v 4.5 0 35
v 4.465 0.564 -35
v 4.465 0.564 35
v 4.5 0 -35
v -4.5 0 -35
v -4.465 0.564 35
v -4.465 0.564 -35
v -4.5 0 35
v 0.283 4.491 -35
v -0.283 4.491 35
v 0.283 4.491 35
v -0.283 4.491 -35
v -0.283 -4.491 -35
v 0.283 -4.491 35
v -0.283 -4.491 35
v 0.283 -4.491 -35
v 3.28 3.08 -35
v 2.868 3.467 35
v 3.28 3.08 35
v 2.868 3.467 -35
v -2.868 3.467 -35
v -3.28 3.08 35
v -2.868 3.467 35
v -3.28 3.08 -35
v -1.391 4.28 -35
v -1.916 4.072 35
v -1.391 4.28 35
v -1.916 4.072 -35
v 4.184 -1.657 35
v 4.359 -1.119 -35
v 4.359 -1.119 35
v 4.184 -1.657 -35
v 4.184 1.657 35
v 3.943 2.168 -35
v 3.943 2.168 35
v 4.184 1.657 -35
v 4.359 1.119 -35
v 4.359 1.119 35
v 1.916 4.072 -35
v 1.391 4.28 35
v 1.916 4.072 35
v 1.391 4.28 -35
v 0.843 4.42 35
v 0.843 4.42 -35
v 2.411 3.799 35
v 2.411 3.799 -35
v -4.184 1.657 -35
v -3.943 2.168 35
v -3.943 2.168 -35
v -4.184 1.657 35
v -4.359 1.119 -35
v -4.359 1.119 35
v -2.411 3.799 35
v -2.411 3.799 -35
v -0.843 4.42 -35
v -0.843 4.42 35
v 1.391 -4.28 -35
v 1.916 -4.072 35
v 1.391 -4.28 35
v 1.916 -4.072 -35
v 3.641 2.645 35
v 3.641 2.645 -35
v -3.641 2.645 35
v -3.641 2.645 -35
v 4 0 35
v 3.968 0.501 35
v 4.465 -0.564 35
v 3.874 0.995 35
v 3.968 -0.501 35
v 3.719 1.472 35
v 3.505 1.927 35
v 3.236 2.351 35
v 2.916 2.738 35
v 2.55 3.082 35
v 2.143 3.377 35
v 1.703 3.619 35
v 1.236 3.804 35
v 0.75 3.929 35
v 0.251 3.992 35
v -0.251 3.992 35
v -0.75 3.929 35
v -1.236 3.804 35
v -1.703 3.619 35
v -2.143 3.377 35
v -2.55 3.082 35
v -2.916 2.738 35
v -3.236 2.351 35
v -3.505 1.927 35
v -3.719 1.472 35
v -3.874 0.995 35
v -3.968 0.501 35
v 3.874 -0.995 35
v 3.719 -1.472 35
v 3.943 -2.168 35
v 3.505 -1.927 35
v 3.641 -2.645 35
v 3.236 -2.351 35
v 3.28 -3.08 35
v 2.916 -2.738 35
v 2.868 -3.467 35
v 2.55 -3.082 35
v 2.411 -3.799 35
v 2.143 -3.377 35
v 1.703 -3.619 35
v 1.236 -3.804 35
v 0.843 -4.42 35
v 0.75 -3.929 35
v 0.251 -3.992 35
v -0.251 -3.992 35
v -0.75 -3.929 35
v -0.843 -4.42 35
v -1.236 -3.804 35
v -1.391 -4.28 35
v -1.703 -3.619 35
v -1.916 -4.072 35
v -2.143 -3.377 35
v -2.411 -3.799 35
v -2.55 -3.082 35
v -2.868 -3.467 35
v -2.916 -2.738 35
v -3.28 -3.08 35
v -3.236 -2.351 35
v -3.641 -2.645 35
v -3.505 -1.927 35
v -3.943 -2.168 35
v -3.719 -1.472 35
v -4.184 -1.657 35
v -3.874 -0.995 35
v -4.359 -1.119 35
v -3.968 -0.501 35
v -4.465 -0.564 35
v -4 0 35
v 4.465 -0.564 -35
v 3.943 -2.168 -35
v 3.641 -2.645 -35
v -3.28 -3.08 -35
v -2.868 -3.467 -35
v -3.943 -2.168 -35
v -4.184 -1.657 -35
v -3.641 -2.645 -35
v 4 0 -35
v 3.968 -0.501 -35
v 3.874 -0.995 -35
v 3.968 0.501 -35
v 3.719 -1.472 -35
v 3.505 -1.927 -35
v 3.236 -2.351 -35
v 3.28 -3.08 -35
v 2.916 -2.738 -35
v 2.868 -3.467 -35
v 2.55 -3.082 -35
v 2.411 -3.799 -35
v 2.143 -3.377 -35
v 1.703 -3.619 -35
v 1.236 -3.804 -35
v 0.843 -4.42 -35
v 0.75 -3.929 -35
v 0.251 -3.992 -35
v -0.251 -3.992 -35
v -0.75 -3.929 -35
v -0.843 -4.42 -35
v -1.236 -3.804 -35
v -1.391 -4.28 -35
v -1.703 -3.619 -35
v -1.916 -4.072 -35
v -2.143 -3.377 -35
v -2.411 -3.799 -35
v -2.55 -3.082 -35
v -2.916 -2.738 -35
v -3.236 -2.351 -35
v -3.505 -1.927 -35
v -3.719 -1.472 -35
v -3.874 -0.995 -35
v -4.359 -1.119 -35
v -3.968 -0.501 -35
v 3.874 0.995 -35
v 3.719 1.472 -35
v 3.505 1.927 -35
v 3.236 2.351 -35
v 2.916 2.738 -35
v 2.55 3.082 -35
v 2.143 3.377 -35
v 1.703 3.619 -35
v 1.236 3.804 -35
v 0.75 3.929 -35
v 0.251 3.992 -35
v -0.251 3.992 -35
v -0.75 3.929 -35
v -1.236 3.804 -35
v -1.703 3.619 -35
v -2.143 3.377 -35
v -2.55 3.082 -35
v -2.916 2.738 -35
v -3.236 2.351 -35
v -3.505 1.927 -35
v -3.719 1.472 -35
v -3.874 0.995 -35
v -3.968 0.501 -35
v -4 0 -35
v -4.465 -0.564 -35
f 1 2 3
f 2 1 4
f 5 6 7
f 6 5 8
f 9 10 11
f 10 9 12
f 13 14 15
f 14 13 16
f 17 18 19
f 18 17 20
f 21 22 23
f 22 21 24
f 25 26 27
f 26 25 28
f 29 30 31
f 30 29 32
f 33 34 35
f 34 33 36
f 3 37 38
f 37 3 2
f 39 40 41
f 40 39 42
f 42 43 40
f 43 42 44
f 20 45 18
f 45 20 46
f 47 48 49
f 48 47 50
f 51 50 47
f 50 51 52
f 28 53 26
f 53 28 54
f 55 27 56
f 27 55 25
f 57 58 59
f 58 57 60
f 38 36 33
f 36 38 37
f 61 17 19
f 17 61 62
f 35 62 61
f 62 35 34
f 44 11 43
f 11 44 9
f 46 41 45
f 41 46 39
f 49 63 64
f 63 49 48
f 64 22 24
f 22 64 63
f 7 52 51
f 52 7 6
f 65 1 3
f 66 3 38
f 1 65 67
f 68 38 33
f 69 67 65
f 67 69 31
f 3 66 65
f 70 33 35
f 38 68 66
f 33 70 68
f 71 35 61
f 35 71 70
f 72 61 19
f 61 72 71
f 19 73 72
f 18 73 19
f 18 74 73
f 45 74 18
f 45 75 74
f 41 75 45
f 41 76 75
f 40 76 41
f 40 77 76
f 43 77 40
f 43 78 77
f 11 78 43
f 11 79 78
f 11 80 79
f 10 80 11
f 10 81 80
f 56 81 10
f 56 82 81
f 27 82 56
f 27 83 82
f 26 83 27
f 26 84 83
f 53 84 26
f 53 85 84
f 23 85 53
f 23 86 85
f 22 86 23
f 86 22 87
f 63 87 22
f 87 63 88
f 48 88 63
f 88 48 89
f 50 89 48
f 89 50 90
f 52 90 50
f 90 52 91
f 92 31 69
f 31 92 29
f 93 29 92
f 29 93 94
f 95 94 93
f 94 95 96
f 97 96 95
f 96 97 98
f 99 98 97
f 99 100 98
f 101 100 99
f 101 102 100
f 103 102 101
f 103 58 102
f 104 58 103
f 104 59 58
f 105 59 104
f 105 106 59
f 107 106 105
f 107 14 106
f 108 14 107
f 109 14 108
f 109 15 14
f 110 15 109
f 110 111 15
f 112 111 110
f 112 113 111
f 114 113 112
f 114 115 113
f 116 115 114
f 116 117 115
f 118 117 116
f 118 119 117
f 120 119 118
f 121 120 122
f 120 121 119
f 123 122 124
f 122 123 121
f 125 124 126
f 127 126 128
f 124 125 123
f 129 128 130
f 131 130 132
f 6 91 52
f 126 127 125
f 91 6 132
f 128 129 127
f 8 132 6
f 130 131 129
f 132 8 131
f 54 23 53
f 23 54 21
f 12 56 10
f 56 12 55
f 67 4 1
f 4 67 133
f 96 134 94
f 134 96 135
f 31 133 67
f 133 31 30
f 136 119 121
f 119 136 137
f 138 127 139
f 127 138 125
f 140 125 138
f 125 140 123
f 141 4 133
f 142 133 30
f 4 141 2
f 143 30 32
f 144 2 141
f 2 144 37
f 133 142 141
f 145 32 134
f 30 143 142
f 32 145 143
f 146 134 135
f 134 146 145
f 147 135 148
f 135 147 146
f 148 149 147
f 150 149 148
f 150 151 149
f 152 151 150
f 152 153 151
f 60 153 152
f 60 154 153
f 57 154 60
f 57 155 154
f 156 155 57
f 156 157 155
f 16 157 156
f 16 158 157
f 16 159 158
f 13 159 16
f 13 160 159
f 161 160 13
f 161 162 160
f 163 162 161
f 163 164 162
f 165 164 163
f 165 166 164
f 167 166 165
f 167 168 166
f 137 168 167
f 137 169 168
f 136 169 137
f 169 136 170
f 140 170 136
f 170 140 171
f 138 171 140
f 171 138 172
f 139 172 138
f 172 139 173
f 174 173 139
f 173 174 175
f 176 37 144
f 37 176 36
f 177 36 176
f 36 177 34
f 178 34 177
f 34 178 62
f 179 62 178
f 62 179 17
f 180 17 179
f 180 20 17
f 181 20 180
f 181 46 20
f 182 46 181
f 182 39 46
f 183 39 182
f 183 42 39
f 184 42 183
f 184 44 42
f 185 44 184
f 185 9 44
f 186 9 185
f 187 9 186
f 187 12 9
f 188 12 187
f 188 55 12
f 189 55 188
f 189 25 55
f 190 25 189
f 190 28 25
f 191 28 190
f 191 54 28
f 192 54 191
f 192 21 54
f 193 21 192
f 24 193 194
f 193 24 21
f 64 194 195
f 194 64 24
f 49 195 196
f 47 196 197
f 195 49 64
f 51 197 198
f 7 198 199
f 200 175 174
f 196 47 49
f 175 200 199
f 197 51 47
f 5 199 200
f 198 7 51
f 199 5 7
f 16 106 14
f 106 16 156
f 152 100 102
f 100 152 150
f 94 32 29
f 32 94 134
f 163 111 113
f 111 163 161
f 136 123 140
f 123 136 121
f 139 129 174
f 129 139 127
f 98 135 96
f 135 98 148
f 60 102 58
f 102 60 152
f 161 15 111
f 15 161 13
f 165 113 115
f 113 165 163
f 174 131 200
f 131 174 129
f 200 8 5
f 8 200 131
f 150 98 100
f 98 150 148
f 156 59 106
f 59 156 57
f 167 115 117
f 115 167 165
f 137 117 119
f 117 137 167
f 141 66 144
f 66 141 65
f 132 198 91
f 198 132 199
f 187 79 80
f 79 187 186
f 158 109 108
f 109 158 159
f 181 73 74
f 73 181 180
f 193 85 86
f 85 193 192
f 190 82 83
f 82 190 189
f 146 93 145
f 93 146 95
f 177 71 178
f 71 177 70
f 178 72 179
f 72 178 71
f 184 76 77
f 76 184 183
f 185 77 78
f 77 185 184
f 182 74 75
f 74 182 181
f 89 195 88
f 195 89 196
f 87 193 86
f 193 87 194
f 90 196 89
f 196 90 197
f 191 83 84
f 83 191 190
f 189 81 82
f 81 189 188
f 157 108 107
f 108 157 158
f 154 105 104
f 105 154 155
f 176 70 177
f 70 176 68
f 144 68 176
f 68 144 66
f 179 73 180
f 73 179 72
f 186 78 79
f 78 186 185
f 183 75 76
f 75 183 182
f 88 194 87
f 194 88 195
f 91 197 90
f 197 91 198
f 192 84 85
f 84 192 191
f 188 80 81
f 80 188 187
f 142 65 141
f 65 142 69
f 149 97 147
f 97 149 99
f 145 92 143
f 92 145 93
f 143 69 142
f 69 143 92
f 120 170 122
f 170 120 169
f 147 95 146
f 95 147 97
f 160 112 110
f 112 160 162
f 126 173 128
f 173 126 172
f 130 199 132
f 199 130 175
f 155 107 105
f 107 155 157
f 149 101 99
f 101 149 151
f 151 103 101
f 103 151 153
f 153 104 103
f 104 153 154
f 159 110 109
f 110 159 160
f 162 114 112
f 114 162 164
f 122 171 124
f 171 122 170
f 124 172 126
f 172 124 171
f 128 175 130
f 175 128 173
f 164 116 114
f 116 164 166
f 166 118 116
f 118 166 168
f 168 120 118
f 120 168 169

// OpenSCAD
$fn = 50;


difference() {
	union() {
		translate(v = [0, 0, -35.0000000000]) {
			cylinder(h = 70, r = 4.5000000000);
		}
	}
	union() {
		translate(v = [0, 0, -100.0000000000]) {
			cylinder(h = 200, r = 4);
		}
	}
}
